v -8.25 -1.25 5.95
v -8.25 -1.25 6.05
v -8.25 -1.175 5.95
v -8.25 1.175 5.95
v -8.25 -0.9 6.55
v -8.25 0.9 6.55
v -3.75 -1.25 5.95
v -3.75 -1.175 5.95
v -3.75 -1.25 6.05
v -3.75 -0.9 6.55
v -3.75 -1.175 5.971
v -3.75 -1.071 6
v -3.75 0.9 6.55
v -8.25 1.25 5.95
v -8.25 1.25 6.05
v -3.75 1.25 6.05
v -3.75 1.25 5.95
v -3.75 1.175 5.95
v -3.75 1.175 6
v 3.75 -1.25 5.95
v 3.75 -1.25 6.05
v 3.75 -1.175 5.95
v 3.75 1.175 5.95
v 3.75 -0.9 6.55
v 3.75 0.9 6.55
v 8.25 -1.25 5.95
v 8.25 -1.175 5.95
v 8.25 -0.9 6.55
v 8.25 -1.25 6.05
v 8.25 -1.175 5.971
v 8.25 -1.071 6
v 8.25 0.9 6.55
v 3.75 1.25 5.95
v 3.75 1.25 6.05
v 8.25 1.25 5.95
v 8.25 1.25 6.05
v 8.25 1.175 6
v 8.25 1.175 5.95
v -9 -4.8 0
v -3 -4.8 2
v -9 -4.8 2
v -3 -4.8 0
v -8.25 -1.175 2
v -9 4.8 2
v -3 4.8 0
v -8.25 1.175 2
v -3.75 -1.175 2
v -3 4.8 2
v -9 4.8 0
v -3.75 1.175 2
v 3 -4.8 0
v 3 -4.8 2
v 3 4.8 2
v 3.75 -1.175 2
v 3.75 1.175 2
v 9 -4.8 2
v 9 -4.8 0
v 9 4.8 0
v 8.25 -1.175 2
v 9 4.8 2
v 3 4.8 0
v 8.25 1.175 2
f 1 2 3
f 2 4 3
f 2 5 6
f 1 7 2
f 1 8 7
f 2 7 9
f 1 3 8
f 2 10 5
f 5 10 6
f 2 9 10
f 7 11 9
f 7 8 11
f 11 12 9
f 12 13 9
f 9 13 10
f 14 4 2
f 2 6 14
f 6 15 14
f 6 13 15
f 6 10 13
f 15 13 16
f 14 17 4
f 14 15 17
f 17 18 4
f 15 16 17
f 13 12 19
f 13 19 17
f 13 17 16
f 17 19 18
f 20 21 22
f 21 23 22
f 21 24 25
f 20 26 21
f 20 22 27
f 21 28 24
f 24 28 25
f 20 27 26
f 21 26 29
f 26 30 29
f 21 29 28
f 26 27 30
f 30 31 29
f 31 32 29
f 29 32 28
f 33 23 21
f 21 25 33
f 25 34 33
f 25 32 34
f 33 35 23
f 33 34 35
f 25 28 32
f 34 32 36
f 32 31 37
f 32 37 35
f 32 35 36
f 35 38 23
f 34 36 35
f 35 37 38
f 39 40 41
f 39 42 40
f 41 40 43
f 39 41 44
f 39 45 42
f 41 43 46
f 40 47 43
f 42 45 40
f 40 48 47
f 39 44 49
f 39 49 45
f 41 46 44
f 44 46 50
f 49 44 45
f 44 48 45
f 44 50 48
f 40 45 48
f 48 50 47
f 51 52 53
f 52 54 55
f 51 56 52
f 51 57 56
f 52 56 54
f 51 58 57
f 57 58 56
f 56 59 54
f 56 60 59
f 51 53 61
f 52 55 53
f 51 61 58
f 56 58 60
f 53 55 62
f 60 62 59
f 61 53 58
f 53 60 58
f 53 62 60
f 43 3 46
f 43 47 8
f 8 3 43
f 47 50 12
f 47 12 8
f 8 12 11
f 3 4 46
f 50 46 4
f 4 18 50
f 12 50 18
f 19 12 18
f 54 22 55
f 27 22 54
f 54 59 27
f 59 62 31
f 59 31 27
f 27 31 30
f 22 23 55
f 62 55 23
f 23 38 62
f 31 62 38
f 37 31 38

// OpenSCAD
// ====================================================================
// [PRINT 04-A] Precision Snap-Fit Top Plugins for Carriage 04 (Pair of 2)
//
// Precision Engineering Specifications:
// - Matched to Carriage 04 Top Slot Gap (2.2mm nominal width).
// - Top Flange: 6.0mm (X-length) x 9.6mm (Y-width) x 2.0mm (Z-thickness).
// - Protruding Snapin Tab: 4.5mm (X-length) x 2.35mm (Y-thickness) x 4.5mm (Z-depth) [Increased Height].
// - Locking Snap Barb: 2.50mm max barb width (snaps tight inside Carriage 04 slot).
// - 100% Support-Free: Rests flat on build plate at Z = 0.
// ====================================================================

$fn = 40;

module snap_top_plugin() {
    union() {
        // 1. Top Cap Seating Flange (rests flush on top surface of Carriage 04)
        translate([0, 0, 1.0])
            cube([6.0, 9.6, 2.0], center = true);

        // 2. Main Protruding Snapin Shaft (increased height to 4.0mm)
        translate([0, 0, 4.0])
            cube([4.5, 2.35, 4.0], center = true);

        // 3. Precision Snap-Lock Barb (2.50mm max width with 45-deg lead-in)
        translate([0, 0, 6.25])
            hull() {
                translate([0, 0, -0.25])
                    cube([4.5, 2.5, 0.1], center = true);
                translate([0, 0, 0.25])
                    cube([4.5, 1.8, 0.1], center = true);
            }
    }
}

// Pair of 2 precision snap-fit plugins
translate([-6.0, 0, 0])
    snap_top_plugin();

translate([6.0, 0, 0])
    snap_top_plugin();
